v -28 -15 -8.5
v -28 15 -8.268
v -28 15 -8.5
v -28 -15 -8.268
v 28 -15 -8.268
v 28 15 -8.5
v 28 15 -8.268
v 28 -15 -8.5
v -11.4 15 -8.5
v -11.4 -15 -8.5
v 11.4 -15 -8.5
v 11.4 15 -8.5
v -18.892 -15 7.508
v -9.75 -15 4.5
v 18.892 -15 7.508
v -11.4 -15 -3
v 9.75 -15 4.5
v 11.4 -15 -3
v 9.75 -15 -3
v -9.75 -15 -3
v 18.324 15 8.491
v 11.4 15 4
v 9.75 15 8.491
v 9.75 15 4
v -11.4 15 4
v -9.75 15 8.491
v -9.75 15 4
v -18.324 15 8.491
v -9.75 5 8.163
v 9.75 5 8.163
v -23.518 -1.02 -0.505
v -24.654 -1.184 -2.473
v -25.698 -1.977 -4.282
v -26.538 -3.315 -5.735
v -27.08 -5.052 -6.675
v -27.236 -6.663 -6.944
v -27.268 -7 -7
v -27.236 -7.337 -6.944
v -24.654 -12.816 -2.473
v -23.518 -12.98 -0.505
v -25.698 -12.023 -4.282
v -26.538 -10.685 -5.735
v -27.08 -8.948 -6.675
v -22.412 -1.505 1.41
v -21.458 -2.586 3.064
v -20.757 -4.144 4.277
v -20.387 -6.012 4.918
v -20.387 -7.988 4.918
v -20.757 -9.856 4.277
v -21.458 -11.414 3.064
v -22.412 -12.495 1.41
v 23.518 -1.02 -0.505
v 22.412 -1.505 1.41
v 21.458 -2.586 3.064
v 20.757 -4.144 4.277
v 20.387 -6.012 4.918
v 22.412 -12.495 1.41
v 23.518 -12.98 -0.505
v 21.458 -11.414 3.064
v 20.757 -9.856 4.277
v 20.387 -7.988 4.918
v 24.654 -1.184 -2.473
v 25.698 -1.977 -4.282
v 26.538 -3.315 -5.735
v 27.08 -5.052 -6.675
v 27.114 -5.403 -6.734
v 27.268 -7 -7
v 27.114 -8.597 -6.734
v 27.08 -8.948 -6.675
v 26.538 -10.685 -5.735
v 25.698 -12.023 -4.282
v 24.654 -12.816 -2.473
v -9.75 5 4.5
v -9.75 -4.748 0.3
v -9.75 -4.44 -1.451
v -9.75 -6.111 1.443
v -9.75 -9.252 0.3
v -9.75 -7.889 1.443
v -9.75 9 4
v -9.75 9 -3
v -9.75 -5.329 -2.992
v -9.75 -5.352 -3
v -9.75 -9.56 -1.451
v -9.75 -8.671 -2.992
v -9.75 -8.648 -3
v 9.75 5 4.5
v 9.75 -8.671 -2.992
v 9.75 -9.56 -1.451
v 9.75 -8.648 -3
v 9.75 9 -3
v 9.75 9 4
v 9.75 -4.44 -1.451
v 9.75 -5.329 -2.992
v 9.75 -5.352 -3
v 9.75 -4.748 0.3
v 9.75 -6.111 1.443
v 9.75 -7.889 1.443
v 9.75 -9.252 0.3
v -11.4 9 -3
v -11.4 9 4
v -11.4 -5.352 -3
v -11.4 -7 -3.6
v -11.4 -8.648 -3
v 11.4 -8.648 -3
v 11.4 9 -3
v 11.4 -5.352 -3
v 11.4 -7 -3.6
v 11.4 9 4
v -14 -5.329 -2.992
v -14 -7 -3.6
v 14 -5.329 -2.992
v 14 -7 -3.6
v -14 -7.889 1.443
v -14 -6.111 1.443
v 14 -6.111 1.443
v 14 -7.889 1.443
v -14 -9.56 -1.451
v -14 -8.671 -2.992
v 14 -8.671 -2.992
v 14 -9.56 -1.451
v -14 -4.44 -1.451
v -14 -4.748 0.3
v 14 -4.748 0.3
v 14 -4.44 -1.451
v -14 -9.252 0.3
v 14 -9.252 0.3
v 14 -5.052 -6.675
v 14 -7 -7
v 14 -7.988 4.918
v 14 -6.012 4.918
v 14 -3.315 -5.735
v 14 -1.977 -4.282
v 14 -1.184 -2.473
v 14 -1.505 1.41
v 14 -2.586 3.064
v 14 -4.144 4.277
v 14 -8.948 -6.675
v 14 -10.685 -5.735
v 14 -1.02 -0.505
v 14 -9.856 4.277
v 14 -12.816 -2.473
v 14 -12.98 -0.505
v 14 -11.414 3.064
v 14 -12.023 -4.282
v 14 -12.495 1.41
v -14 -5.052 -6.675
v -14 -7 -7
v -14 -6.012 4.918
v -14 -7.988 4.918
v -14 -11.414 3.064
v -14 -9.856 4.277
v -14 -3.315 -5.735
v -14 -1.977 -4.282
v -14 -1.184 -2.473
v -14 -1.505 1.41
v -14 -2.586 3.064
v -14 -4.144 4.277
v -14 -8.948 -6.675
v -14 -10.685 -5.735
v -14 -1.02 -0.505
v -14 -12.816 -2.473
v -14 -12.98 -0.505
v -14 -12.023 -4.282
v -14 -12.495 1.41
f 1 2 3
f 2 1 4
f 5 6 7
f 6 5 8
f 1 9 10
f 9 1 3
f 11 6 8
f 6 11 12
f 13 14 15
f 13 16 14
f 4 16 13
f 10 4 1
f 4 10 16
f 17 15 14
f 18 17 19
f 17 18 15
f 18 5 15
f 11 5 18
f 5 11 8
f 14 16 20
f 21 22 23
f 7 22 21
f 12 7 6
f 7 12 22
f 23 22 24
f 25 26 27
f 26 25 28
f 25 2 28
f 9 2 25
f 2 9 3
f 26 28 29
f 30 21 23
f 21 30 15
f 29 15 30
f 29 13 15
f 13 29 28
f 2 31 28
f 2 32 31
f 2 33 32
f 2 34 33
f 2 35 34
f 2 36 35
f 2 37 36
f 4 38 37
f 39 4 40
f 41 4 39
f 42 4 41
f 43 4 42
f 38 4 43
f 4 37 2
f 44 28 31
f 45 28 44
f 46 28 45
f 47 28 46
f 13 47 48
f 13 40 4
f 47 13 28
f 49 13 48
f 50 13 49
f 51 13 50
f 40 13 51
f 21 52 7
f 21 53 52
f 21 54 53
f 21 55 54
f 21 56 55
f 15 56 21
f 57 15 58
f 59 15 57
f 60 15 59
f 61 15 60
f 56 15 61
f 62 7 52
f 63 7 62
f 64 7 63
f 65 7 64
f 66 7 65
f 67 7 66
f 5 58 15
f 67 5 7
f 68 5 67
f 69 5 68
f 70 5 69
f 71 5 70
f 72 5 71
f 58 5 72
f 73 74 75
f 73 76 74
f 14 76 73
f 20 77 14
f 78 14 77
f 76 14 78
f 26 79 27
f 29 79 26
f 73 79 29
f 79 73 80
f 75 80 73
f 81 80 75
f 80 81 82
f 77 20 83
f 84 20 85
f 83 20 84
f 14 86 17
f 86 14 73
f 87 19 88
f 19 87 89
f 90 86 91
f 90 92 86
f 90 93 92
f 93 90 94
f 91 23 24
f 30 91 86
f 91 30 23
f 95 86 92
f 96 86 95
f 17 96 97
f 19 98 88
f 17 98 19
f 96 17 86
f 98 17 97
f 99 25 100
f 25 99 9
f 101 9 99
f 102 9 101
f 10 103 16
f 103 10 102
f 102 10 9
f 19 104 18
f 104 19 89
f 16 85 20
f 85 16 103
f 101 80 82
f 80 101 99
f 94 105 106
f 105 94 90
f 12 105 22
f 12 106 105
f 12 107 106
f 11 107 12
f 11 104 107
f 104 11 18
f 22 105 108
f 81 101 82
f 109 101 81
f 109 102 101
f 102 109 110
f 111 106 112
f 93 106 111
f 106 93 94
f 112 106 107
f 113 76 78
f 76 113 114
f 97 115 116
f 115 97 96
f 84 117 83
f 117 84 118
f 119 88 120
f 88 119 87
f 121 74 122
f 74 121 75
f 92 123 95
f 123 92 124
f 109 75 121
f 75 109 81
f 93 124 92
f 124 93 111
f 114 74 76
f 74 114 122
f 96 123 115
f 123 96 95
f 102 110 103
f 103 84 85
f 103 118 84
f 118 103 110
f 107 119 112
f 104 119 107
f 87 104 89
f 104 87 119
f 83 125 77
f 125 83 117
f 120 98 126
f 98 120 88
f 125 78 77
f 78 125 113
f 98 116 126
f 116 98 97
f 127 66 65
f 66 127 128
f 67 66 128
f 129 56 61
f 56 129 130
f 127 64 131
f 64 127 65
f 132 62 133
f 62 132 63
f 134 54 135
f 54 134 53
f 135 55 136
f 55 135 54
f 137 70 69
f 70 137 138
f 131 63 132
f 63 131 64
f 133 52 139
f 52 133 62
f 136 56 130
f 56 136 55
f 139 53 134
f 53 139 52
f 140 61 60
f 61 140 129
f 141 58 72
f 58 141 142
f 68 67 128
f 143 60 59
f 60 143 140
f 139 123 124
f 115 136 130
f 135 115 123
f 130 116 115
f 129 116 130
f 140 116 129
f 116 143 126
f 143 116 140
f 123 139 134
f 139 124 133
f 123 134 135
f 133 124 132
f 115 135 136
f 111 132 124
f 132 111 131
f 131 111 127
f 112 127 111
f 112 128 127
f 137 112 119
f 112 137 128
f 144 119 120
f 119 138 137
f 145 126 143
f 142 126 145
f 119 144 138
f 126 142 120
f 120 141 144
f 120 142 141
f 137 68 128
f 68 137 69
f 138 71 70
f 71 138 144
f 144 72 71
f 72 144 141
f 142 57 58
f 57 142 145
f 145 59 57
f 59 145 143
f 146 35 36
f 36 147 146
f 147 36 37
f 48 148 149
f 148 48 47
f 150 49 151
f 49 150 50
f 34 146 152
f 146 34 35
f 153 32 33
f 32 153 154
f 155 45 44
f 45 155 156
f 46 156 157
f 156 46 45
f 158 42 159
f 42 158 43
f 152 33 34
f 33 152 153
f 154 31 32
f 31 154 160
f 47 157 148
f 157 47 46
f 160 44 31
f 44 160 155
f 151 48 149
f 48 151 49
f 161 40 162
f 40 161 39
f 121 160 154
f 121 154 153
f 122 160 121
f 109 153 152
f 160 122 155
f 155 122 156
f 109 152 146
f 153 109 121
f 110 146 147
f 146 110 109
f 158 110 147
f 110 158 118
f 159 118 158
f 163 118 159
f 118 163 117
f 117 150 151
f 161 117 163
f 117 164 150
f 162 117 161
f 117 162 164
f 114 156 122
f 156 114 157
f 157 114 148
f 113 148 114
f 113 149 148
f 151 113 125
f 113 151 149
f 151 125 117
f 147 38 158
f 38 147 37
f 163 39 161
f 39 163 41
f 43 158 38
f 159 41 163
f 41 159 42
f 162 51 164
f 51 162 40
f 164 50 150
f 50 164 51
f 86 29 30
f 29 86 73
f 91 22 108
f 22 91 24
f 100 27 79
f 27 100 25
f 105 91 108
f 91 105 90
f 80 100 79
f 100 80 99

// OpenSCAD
difference () {
  cube ([56, 30, 17], center=true);
  translate ([0, 0, 9]) {
    rotate (a=1.8749999999999998, v=[1, 0, 0]) {
      cube ([42, 31, 2], center=true);
    }
  }
  translate ([-29, 0, 0]) {
    rotate (a=29.999999999999996, v=[0, 1, 0]) {
      cube ([10, 30, 40], center=true);
    }
  }
  translate ([29, 0, 0]) {
    rotate (a=-29.999999999999996, v=[0, 1, 0]) {
      cube ([10, 30, 40], center=true);
    }
  }
  translate ([0, 0, -2]) {
    cube ([19.5, 30, 13], center=true);
  }
  translate ([0, 0, -6]) {
    cube ([22.8, 30, 6], center=true);
  }
  translate ([0, -7, -1]) {
    rotate (a=90.0, v=[0, 1, 0]) {
      cylinder (h=56, r=2.6, center=true);
    }
  }
  translate ([22, -7, -1]) {
    rotate (a=90.0, v=[0, 1, 0]) {
      cylinder (h=16, r=6, center=true);
    }
  }
  translate ([-22, -7, -1]) {
    rotate (a=90.0, v=[0, 1, 0]) {
      cylinder (h=16, r=6, center=true);
    }
  }
  translate ([0, 10, 0]) {
    cube ([19.5, 10, 17], center=true);
  }
  translate ([0, 12, 0]) {
    cube ([22.8, 6, 8], center=true);
  }
}
